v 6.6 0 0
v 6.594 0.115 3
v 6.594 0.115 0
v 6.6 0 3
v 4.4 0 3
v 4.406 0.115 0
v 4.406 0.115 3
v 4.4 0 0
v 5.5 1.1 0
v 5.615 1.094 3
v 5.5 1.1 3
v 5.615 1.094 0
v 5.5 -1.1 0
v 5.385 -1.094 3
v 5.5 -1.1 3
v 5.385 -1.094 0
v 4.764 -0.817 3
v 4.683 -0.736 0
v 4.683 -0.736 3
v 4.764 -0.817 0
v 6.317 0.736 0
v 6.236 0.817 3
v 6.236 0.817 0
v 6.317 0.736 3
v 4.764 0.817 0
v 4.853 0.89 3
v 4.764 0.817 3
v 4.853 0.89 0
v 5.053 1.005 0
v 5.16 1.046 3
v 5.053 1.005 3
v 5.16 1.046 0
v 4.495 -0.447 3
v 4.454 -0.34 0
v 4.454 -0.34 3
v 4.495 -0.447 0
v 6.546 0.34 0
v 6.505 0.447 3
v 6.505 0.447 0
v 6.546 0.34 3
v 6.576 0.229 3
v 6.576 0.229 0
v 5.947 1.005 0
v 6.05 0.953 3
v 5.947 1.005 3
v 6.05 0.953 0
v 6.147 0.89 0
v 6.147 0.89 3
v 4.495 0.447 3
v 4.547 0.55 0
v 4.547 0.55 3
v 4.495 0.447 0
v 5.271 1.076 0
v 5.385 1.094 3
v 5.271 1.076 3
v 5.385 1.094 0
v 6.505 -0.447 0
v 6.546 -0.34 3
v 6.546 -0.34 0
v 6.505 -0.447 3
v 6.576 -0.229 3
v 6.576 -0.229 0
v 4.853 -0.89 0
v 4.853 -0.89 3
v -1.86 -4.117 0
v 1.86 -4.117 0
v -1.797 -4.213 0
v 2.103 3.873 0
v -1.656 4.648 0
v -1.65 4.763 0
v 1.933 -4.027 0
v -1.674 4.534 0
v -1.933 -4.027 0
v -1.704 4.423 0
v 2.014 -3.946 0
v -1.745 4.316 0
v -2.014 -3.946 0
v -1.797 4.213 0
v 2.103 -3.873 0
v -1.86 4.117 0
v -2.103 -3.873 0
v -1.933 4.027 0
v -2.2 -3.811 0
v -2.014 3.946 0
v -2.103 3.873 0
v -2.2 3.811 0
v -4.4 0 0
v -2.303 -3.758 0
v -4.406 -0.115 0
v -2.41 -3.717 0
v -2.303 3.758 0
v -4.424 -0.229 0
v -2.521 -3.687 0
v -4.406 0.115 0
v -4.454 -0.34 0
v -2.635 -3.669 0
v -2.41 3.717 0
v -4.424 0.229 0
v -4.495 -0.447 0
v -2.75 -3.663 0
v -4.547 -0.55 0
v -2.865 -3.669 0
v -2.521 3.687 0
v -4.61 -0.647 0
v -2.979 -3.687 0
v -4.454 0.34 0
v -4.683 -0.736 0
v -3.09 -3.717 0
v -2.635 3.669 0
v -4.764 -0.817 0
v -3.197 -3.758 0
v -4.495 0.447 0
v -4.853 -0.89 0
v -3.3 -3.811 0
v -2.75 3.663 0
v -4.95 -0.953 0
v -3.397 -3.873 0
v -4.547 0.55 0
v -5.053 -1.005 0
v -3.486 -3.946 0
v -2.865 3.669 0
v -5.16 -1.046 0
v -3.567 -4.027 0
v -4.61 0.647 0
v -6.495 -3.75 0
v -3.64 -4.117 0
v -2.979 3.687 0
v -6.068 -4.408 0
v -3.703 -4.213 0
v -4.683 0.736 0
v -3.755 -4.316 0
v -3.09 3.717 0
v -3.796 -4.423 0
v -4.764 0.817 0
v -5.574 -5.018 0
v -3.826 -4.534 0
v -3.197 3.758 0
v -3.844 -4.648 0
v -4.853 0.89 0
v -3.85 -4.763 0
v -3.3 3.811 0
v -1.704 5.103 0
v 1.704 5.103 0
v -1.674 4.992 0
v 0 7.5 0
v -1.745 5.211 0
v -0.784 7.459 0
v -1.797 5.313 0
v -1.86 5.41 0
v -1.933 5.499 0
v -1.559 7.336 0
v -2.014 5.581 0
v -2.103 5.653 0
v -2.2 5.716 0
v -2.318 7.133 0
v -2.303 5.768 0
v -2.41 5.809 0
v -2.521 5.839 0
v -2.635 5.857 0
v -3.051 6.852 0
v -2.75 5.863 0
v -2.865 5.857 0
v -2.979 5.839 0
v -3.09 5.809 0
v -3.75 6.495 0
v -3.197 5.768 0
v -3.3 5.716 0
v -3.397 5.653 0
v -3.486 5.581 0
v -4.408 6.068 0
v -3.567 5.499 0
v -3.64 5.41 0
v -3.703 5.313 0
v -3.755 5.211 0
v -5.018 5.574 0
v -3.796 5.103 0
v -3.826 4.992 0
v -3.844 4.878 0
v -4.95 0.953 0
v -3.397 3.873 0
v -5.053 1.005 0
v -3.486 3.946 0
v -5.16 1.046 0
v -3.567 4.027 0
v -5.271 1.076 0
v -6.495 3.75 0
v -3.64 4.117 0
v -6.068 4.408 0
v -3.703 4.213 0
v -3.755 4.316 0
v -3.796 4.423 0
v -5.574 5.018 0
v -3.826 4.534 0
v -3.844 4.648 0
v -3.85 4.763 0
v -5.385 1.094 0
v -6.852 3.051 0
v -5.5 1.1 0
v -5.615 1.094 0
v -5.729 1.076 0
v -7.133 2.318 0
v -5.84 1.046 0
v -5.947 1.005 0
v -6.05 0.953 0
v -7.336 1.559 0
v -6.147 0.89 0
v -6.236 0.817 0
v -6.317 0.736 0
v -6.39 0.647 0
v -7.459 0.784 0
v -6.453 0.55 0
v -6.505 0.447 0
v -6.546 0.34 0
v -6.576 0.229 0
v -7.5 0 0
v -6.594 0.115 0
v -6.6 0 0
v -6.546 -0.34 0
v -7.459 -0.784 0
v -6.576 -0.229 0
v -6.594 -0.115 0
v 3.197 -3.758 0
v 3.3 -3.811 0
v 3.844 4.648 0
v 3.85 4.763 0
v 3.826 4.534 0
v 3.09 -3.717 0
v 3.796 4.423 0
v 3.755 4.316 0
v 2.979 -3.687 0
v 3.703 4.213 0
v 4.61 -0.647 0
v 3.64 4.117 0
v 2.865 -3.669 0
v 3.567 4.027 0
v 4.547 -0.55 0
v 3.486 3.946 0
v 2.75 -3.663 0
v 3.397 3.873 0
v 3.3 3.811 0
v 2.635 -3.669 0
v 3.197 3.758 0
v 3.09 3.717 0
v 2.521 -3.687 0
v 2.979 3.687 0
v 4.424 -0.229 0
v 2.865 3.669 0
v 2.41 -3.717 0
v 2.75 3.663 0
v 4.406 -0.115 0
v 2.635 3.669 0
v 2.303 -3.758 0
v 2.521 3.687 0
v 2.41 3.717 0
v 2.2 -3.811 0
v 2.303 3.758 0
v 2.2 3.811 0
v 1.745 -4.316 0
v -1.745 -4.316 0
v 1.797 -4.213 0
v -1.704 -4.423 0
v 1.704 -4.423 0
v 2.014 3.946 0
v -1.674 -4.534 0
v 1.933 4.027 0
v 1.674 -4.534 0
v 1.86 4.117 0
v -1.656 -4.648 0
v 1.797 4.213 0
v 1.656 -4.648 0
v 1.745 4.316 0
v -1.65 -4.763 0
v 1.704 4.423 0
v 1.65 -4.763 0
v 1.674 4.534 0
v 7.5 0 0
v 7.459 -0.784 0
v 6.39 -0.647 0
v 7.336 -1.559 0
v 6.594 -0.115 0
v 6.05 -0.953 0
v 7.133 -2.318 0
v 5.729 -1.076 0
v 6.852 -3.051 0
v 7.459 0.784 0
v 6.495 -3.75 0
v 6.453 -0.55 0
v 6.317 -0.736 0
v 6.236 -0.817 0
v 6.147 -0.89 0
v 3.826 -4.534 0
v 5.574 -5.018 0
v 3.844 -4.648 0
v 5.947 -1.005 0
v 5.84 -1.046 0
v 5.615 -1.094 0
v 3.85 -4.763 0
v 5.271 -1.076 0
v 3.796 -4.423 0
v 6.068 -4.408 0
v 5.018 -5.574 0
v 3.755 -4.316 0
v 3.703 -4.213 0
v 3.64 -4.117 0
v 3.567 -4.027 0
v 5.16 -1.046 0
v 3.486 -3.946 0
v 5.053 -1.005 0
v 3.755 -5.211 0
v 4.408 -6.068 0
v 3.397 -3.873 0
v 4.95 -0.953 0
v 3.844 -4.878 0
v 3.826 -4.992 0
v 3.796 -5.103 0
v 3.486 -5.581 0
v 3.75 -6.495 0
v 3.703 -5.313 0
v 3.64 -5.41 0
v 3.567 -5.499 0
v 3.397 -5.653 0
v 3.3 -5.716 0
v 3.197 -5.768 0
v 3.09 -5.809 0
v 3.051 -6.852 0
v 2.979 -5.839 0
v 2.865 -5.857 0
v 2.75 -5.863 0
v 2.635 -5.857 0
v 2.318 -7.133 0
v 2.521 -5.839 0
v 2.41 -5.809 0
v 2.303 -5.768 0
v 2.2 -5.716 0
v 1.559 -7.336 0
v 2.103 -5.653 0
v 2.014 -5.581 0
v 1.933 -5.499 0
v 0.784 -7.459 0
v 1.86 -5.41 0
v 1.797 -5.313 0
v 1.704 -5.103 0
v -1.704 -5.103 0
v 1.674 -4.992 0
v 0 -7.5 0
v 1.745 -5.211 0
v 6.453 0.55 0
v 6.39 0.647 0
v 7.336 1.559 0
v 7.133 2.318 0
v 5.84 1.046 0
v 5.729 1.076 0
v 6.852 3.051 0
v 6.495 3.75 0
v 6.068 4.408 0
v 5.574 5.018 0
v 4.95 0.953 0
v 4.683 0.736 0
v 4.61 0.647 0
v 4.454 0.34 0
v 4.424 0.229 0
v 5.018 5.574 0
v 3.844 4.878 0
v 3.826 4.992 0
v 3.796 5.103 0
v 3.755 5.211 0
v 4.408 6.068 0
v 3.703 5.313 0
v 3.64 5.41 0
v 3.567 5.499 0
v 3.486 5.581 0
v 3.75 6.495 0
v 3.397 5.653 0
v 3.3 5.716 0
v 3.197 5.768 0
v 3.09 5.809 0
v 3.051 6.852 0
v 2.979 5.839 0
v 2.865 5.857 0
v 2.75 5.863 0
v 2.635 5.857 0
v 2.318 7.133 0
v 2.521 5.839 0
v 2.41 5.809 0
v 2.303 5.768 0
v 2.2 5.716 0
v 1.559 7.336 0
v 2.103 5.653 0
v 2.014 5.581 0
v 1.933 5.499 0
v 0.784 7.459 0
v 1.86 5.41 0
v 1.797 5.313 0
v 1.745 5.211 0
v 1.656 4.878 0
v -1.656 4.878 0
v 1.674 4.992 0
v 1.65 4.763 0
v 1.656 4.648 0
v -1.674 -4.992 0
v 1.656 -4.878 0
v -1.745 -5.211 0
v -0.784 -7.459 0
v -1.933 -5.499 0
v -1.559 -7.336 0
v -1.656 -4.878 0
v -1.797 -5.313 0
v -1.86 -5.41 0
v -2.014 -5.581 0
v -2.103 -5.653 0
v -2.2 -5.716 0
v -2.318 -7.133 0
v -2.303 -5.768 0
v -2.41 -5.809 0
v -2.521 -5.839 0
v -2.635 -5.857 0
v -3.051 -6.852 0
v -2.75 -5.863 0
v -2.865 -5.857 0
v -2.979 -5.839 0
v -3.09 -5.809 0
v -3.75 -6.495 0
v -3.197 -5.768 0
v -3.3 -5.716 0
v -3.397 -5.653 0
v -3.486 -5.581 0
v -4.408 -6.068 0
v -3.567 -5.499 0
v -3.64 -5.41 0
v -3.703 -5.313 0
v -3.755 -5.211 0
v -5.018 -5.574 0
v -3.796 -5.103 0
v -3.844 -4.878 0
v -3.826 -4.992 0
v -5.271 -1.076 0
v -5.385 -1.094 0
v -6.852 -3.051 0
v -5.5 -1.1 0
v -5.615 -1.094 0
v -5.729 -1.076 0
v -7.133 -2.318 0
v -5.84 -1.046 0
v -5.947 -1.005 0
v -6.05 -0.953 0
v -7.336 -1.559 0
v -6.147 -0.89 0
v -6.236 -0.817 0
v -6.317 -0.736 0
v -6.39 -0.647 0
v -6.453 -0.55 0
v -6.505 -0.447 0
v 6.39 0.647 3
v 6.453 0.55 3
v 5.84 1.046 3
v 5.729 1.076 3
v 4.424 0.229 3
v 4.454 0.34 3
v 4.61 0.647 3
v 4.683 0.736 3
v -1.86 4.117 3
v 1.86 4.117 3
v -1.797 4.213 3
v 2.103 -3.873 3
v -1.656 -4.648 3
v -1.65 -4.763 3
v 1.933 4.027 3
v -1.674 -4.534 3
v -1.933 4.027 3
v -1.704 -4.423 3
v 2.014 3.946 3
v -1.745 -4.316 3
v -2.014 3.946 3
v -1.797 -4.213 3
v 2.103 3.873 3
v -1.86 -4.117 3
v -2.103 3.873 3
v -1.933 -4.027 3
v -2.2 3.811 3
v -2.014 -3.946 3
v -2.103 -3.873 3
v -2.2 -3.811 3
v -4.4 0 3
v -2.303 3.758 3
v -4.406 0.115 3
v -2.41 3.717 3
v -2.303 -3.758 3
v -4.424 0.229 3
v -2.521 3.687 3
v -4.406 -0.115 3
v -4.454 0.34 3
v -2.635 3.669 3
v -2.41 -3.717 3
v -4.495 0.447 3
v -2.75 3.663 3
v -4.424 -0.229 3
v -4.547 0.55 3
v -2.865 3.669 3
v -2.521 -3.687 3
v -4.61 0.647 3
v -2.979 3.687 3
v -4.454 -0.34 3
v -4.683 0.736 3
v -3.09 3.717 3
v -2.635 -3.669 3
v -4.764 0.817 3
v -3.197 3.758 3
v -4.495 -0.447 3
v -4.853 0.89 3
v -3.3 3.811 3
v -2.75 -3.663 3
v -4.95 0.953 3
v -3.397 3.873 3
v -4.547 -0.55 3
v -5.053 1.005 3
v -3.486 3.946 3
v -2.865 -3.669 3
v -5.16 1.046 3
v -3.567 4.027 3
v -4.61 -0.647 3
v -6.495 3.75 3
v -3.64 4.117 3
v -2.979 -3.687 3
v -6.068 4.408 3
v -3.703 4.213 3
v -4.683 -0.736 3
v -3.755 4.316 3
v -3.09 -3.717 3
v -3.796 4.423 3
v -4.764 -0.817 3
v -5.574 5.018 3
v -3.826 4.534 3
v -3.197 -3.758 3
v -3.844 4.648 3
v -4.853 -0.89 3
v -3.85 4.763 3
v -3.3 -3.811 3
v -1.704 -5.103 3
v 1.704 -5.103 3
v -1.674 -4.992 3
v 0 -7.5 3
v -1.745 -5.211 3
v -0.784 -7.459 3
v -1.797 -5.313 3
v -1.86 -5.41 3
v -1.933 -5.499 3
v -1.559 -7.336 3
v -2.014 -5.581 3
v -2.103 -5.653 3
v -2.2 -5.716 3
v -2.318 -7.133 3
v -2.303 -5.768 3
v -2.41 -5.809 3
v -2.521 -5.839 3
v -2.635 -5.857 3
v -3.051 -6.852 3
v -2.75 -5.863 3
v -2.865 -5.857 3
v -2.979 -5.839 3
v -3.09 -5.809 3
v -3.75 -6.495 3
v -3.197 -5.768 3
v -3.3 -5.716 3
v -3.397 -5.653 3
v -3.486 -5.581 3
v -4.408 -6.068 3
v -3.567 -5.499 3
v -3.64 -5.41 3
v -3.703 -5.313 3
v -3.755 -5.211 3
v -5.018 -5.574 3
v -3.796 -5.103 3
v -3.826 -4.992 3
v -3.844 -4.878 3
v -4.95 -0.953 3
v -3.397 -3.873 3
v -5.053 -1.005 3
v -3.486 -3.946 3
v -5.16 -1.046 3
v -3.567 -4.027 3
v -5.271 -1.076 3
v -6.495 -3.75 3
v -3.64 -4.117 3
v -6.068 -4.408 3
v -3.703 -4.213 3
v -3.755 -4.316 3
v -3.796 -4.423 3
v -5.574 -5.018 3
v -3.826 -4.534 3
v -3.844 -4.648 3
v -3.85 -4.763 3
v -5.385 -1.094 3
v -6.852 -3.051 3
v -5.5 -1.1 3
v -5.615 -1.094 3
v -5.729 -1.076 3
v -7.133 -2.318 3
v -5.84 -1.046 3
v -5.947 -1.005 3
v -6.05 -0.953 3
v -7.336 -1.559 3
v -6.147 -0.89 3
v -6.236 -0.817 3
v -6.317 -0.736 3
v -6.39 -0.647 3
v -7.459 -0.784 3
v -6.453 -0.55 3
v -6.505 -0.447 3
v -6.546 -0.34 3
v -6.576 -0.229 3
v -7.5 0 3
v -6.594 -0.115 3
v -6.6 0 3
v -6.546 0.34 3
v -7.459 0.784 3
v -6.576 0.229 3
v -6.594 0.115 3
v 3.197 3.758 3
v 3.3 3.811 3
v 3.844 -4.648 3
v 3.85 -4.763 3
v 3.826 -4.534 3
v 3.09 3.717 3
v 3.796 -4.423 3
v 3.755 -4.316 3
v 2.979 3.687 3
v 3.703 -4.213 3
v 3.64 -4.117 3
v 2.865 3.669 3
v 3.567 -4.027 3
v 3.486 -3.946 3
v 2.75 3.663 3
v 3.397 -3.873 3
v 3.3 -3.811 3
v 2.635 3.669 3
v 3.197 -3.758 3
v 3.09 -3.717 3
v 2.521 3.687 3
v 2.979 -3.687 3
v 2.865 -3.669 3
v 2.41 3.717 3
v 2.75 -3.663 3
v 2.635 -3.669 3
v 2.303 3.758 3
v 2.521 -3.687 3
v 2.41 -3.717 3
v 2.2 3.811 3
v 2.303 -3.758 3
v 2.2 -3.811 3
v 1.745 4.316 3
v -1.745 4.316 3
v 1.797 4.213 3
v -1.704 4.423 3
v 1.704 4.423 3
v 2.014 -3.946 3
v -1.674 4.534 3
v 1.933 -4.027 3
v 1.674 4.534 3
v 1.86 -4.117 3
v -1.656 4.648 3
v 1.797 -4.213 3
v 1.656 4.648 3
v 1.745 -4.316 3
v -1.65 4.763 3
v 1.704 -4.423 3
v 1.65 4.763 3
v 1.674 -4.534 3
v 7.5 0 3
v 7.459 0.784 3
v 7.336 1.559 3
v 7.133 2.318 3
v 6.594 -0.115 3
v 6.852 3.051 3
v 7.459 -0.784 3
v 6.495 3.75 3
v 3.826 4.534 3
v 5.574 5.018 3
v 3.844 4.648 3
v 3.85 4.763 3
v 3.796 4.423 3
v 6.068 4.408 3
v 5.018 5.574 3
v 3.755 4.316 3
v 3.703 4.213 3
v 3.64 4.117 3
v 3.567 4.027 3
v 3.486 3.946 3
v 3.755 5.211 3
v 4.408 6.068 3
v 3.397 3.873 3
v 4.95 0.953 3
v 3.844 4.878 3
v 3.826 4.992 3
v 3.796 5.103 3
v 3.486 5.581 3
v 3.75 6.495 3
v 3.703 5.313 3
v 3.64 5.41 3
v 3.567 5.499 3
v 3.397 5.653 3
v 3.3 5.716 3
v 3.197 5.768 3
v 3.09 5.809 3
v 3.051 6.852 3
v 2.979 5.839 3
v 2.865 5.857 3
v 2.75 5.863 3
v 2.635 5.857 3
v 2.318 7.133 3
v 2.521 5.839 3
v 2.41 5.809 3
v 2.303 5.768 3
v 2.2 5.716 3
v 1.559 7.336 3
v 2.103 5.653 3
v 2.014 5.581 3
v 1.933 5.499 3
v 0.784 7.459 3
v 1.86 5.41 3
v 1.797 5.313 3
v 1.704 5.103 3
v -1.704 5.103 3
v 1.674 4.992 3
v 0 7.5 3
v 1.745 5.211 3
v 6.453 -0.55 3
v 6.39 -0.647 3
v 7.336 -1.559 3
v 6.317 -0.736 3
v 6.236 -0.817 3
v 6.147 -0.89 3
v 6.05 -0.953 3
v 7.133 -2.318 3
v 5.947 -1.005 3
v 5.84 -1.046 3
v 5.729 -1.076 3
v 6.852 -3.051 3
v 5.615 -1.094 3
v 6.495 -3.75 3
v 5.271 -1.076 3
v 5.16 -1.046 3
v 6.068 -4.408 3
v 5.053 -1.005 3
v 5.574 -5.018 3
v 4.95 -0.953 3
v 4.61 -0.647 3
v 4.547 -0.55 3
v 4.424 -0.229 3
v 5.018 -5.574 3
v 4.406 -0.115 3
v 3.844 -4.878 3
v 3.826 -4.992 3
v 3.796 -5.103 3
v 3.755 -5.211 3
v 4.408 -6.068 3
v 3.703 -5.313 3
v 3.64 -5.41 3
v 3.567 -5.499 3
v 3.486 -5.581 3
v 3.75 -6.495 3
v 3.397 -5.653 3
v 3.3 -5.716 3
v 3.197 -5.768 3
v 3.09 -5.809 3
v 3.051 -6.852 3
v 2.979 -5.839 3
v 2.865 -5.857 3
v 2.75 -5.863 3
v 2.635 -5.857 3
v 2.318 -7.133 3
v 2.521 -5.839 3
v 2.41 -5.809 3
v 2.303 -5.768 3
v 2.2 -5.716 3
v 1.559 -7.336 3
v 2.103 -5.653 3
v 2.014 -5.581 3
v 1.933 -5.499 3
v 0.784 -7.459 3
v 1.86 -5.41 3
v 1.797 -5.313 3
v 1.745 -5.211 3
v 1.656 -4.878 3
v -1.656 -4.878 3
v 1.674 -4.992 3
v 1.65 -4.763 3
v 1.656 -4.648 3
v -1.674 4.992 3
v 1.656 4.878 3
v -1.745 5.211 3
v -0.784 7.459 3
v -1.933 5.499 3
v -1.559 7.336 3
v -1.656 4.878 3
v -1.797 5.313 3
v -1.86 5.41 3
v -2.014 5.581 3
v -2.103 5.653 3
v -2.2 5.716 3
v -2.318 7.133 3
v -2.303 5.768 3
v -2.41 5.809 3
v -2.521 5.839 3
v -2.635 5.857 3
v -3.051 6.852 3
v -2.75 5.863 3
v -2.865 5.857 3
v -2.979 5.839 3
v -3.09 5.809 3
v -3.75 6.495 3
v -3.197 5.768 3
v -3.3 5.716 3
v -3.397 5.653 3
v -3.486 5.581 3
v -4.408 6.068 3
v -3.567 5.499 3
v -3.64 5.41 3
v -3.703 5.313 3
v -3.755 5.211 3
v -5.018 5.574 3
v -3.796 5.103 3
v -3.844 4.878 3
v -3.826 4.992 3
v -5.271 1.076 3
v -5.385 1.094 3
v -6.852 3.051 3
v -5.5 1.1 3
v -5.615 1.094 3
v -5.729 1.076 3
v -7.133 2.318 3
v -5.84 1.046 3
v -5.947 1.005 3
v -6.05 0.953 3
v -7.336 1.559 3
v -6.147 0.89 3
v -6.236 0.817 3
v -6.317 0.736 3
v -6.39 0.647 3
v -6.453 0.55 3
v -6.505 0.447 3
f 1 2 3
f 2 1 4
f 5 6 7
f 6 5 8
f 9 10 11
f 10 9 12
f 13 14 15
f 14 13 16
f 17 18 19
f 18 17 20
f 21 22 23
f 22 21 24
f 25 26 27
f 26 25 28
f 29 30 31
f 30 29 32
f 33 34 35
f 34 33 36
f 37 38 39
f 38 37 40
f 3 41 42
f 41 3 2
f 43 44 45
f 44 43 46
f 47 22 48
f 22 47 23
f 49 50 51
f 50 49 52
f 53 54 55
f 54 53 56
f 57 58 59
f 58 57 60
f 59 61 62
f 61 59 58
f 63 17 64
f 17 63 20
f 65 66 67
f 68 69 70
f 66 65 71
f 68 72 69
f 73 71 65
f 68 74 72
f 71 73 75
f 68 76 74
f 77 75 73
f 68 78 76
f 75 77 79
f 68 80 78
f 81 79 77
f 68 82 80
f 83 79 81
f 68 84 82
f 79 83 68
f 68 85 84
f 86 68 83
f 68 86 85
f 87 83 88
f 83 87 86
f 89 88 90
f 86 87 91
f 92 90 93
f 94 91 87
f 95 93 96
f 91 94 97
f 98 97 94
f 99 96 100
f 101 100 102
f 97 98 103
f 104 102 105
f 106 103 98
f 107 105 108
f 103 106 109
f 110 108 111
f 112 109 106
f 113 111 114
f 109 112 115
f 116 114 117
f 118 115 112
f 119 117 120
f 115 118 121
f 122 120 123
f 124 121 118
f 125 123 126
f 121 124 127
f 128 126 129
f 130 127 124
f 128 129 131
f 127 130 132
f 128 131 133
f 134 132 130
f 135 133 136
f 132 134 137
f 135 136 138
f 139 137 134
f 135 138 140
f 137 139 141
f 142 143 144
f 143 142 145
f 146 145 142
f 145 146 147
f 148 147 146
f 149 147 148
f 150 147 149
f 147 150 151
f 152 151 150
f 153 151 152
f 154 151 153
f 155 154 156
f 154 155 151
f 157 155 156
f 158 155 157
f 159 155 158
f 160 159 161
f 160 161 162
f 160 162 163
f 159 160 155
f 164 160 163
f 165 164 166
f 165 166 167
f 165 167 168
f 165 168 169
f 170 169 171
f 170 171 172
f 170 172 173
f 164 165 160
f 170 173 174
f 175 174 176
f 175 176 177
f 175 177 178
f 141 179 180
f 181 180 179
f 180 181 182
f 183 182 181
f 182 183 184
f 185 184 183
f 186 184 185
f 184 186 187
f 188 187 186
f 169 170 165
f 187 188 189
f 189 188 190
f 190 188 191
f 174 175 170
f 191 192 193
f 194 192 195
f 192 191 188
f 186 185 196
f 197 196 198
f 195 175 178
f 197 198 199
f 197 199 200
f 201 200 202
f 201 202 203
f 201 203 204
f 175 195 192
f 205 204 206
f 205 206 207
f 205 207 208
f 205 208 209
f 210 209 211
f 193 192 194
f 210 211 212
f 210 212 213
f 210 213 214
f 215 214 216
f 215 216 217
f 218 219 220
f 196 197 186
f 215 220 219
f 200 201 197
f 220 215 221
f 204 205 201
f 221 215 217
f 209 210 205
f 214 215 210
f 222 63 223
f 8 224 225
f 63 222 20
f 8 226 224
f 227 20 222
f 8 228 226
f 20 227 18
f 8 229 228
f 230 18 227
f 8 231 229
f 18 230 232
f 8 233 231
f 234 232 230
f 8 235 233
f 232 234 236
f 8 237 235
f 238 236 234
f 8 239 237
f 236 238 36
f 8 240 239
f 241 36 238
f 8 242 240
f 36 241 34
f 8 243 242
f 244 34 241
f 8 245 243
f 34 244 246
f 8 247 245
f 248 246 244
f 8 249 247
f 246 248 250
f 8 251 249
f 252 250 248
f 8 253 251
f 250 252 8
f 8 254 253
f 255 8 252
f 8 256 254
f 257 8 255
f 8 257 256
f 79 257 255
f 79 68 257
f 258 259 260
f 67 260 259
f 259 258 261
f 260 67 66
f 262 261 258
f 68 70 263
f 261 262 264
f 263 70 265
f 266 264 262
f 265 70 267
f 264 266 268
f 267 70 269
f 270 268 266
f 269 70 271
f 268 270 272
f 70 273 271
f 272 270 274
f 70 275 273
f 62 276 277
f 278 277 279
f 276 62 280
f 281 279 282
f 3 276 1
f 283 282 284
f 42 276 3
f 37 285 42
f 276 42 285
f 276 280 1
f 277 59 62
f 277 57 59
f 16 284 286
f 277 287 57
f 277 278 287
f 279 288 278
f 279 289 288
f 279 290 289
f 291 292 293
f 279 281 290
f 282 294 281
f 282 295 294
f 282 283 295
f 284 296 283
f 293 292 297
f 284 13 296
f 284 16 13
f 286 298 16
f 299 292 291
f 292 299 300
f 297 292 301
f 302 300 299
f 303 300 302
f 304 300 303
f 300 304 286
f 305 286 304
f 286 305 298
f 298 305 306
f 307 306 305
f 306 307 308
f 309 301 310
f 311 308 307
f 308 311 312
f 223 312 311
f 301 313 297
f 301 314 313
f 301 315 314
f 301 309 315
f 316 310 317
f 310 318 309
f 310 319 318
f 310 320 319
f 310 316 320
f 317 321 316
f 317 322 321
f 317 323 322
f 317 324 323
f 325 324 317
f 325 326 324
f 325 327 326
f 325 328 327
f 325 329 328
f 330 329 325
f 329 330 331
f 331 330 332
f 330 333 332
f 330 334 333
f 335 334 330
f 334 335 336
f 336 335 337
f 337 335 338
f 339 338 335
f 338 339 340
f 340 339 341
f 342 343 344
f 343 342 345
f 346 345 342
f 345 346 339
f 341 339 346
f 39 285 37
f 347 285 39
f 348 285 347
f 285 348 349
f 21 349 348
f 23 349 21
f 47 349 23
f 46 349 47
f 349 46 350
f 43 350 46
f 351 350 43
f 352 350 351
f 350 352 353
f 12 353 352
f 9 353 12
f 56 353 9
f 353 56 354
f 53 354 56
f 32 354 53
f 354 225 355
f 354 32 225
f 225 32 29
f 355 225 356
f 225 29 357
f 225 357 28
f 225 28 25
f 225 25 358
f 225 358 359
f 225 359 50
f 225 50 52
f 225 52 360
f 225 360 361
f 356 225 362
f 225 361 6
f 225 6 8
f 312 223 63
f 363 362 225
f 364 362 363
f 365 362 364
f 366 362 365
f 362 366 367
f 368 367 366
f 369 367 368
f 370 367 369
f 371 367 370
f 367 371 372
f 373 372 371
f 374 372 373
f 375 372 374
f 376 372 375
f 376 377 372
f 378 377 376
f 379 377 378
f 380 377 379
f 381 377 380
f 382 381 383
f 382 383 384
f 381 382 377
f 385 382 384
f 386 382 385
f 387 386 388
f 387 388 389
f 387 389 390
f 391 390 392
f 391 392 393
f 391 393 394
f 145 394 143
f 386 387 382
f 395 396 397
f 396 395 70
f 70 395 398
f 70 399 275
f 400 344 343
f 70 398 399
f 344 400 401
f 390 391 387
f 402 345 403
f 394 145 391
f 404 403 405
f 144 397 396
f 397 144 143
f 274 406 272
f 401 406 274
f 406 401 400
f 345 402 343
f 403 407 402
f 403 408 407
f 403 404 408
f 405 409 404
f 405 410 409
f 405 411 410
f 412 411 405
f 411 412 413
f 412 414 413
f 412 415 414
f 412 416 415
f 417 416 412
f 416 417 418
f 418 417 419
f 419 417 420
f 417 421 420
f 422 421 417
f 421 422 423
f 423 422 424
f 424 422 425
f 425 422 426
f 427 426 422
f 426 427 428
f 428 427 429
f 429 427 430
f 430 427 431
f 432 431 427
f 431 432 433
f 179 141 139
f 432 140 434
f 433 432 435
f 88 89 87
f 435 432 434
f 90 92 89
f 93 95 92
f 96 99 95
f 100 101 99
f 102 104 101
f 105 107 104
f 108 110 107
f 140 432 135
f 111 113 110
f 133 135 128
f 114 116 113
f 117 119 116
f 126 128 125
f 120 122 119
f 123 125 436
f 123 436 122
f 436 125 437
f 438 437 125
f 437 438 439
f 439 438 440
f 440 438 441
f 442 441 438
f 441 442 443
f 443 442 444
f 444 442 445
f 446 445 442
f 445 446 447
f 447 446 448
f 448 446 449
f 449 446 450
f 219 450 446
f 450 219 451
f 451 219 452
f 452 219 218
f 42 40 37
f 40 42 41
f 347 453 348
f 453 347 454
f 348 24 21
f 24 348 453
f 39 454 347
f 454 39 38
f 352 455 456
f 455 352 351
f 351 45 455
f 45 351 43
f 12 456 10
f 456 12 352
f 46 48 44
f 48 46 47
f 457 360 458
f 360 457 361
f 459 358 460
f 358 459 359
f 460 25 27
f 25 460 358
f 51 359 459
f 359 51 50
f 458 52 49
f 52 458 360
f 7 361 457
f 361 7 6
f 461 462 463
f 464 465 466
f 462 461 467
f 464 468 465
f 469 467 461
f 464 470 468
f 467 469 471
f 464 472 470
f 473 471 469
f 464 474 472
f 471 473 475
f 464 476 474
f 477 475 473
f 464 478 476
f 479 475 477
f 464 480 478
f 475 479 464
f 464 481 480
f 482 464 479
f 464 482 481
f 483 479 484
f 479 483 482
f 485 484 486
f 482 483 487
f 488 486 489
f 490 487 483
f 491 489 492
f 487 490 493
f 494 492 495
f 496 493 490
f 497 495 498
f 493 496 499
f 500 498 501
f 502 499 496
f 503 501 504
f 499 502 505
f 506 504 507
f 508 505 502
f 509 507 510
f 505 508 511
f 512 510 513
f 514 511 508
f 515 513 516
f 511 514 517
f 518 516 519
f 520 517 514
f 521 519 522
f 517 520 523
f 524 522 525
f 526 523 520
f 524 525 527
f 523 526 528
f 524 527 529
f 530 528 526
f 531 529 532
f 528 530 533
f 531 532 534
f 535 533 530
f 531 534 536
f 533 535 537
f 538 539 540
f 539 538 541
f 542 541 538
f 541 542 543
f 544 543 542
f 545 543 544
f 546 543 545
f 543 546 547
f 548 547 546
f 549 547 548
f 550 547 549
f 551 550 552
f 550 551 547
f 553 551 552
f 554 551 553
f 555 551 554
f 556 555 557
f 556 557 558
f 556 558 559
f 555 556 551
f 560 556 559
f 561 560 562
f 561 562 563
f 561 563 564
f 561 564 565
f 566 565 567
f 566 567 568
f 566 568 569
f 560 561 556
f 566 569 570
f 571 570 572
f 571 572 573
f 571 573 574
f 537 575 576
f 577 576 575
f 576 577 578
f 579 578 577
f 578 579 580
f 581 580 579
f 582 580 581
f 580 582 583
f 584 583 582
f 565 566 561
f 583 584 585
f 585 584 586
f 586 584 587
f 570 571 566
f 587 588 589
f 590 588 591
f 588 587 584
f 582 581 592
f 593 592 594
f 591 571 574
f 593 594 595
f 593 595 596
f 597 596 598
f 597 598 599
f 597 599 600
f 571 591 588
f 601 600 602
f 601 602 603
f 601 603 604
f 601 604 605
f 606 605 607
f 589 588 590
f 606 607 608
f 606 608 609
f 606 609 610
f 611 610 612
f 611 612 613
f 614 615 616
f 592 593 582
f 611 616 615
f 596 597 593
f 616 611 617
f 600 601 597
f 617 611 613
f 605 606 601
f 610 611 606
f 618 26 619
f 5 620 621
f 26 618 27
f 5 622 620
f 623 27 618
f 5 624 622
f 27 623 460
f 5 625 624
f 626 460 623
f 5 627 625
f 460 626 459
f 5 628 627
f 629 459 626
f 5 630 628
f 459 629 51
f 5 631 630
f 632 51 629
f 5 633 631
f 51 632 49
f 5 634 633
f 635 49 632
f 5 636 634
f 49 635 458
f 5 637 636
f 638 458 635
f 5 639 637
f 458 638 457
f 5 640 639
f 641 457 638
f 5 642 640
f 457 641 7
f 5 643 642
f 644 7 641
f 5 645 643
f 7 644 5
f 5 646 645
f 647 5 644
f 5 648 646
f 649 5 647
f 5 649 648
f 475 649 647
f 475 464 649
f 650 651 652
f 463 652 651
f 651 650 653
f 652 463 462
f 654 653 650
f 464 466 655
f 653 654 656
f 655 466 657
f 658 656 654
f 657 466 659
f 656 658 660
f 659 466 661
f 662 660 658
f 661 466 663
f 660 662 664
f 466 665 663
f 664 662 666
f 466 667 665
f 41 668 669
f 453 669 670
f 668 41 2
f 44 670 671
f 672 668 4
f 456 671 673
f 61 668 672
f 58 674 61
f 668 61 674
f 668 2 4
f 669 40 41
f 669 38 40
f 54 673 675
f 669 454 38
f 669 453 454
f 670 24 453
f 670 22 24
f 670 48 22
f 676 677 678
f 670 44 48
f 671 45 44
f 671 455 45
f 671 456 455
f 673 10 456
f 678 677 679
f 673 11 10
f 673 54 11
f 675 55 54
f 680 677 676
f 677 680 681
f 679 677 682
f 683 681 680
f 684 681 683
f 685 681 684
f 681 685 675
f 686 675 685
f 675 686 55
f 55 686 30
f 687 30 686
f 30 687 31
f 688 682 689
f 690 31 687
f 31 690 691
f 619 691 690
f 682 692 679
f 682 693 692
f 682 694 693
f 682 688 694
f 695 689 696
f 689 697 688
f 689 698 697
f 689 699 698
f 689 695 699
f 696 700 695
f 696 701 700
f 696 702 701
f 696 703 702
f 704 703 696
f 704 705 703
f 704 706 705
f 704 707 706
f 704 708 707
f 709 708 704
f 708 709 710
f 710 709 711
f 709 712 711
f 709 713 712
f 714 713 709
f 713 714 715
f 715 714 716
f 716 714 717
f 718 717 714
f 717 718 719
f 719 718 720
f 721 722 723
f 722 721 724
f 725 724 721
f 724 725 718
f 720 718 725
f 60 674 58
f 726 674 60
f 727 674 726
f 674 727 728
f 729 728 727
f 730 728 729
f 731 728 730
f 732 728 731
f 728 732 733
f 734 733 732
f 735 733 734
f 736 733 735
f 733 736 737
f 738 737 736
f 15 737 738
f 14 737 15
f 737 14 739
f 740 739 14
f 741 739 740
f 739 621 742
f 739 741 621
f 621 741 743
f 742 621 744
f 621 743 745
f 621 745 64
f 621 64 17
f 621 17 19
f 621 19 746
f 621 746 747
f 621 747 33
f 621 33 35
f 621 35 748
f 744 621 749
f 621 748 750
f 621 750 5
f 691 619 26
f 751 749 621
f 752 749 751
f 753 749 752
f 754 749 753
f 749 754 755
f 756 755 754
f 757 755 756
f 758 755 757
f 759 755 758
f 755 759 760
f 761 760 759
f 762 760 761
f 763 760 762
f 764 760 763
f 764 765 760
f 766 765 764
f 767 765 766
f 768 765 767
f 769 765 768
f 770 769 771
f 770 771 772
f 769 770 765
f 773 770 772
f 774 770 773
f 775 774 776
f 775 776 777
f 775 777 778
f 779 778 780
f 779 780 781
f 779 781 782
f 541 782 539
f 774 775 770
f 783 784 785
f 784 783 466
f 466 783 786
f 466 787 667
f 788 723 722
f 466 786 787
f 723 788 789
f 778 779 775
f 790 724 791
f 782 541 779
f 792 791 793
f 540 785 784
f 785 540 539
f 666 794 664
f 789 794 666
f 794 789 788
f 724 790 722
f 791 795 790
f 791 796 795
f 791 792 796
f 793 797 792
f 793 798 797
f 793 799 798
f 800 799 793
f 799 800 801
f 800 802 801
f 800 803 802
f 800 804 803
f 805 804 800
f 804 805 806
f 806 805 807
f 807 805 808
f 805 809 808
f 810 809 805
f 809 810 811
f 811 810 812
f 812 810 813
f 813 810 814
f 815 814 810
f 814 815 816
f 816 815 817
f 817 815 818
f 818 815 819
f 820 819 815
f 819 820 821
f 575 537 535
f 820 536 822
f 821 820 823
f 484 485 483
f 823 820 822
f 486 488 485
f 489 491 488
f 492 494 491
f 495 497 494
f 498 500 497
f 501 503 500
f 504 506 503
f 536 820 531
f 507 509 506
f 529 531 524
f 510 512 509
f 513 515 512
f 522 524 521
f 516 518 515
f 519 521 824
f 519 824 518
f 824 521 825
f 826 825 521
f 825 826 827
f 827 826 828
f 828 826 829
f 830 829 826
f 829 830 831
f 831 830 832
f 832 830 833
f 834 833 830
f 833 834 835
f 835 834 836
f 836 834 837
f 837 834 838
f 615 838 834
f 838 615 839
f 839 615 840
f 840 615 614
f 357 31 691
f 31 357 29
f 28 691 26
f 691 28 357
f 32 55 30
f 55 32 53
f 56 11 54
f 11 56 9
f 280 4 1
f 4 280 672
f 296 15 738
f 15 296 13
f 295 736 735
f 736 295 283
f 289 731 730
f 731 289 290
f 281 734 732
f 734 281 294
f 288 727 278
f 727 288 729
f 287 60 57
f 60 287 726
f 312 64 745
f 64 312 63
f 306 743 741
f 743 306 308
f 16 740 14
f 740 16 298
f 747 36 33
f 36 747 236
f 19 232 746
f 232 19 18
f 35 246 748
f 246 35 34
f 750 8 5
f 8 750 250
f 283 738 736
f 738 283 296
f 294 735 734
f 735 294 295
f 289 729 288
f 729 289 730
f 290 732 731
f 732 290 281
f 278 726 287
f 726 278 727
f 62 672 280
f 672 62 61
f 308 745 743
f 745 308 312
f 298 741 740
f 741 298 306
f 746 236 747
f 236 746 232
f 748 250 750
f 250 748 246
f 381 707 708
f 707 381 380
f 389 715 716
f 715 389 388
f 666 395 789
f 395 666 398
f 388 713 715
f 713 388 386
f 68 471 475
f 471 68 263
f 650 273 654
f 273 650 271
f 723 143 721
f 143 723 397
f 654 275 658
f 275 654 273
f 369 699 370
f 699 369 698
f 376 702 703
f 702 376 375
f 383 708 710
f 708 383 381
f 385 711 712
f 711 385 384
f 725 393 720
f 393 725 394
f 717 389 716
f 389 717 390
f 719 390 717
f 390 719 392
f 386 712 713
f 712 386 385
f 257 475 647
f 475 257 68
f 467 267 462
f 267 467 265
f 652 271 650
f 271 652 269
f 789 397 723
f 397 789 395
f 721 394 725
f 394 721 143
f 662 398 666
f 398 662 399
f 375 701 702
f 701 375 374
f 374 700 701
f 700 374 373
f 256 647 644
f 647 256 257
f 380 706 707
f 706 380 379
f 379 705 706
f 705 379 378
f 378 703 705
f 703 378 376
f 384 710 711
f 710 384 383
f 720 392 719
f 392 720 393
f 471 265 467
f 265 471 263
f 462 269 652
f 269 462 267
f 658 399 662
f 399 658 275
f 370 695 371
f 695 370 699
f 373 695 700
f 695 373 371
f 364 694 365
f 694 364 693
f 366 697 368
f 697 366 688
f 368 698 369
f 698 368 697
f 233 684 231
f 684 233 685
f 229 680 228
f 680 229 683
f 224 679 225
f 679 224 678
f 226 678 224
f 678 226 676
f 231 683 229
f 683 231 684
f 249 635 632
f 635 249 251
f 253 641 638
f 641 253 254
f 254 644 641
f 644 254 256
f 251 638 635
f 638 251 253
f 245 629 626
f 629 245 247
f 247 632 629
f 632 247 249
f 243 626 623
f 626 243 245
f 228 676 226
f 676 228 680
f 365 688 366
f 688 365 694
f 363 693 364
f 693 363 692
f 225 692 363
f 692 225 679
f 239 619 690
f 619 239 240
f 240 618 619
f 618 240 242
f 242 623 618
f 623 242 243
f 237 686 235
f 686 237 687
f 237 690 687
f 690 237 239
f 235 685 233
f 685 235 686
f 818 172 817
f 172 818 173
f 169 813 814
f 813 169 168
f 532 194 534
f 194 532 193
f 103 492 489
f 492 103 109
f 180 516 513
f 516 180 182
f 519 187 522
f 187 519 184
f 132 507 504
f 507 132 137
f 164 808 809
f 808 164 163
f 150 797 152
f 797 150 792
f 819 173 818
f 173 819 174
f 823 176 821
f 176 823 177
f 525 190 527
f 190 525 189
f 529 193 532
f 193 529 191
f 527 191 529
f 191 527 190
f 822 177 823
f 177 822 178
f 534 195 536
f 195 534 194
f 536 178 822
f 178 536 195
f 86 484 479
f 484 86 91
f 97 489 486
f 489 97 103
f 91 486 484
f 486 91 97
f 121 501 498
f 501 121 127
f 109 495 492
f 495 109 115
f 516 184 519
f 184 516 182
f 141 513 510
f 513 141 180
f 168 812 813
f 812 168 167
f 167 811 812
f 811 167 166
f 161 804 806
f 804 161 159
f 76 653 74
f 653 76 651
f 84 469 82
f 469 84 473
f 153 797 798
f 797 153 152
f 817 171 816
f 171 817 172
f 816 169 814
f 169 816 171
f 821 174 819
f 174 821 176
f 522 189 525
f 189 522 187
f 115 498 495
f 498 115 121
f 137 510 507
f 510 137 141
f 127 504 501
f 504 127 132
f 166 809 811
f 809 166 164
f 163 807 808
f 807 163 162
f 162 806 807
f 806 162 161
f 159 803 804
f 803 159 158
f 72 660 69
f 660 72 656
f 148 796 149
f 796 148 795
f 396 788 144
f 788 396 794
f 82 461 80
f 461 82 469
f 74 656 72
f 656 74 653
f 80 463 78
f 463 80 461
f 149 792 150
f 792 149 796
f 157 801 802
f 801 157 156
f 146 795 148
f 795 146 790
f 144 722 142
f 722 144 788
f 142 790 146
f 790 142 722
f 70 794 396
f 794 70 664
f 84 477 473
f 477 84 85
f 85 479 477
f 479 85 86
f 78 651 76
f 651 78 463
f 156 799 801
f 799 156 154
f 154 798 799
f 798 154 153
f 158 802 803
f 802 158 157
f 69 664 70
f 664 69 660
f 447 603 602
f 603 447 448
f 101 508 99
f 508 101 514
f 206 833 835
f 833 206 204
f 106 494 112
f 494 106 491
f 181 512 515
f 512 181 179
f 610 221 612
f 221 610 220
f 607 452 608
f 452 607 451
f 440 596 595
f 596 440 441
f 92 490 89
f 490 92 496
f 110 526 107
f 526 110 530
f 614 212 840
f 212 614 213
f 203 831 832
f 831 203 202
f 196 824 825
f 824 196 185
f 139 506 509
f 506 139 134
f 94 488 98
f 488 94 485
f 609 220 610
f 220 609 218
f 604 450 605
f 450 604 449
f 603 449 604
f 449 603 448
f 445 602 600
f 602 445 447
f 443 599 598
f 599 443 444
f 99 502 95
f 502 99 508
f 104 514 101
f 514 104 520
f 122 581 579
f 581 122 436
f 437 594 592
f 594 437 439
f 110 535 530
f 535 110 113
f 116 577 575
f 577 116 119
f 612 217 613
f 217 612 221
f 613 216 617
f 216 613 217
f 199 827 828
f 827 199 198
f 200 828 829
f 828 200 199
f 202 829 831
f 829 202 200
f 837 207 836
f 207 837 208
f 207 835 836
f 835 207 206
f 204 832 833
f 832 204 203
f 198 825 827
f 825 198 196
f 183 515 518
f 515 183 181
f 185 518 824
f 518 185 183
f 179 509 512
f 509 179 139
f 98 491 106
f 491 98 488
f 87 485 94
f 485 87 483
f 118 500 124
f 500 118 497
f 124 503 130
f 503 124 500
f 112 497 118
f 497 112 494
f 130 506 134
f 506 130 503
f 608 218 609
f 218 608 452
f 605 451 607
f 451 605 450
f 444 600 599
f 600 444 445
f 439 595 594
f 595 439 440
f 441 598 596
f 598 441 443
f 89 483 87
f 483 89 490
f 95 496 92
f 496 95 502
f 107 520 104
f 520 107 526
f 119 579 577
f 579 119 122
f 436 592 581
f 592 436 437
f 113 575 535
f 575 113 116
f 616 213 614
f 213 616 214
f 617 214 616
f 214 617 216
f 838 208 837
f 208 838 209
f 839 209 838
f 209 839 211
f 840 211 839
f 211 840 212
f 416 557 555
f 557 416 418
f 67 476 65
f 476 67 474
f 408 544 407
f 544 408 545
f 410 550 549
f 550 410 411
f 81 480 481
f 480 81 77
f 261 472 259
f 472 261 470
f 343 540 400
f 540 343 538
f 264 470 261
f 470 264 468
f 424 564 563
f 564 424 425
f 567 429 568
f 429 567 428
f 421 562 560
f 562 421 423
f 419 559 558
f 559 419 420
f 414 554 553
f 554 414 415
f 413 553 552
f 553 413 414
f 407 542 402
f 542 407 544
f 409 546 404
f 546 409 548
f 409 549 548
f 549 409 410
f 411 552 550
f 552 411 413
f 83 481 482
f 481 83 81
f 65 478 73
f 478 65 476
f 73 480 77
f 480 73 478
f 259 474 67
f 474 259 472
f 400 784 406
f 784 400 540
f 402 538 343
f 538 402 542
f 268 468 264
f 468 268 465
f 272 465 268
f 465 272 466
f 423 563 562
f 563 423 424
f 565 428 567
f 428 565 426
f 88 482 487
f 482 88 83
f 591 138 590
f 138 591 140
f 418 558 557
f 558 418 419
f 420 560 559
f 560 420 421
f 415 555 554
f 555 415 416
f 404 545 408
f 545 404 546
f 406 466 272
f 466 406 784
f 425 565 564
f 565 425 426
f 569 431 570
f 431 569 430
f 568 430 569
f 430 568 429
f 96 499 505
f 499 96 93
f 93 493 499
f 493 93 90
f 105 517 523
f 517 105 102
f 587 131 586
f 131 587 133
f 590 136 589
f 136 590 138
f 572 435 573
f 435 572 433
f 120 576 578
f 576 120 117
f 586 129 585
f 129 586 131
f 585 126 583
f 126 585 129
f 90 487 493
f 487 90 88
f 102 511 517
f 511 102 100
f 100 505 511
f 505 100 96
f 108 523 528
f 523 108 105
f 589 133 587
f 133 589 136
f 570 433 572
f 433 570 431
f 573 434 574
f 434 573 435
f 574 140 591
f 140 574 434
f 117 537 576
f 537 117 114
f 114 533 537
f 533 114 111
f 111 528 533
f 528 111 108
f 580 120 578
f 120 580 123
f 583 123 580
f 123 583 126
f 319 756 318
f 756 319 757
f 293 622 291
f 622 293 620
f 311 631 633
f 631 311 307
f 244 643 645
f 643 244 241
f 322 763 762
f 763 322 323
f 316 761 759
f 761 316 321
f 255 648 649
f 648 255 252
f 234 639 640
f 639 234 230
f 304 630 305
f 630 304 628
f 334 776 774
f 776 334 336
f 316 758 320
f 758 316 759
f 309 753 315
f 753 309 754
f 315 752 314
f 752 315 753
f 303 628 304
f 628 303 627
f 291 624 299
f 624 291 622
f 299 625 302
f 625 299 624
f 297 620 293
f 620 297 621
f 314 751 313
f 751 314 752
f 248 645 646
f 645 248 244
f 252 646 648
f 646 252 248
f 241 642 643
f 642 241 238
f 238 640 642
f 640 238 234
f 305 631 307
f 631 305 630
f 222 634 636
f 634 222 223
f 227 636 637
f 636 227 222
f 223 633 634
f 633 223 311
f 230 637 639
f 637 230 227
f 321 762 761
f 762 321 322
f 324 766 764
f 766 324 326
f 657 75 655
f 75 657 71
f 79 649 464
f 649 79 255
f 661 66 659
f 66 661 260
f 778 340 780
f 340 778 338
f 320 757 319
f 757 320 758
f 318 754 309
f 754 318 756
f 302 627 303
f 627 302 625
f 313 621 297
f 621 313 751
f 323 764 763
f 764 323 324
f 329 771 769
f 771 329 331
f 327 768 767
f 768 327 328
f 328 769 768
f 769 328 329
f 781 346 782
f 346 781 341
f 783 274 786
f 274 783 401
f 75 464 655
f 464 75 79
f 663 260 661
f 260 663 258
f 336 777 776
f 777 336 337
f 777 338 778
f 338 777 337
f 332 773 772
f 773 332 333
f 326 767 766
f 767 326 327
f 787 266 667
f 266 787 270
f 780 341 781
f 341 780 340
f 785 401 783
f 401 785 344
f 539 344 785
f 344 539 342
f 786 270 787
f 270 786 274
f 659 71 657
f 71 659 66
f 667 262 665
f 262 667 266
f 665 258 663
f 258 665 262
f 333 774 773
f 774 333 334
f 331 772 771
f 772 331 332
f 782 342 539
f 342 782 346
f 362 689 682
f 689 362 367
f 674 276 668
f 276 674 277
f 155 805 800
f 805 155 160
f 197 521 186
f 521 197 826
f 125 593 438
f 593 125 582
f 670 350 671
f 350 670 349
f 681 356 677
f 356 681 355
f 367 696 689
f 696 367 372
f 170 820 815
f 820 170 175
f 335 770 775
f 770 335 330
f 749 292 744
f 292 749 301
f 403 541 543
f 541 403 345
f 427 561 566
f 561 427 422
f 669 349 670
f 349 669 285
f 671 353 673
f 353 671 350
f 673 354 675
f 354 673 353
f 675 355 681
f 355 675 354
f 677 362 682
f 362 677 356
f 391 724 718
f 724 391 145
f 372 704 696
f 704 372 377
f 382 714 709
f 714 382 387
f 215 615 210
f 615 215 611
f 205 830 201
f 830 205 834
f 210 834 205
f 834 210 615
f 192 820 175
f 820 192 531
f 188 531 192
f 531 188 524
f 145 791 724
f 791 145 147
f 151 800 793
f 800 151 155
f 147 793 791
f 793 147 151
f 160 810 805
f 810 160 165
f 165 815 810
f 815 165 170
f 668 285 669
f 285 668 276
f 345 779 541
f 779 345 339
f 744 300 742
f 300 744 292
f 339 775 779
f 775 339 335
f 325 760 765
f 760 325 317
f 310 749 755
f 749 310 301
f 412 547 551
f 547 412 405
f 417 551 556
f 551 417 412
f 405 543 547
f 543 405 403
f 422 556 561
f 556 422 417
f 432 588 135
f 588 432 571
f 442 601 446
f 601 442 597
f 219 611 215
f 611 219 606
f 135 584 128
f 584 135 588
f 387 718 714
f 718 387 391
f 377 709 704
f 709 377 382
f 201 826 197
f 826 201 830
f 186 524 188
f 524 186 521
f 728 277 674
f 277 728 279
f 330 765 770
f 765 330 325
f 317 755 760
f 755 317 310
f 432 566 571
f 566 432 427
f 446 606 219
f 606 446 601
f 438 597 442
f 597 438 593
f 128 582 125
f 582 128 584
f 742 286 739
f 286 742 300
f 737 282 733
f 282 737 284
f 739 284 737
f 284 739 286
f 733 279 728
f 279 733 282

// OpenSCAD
$fn = 60;

prumer = 15;
prumerDiry = 2.2;
pocetLan = 6;
vyska = 3;
uhel = 360/pocetLan;

difference() {
    cylinder(r=prumer/2, h=vyska);
    for (i = [0 : pocetLan]) {
        #rotate([0, 0, i*uhel]) translate([prumer/2-2, 0, 0]) cylinder(r=prumerDiry/2, h=vyska);
    }
}
